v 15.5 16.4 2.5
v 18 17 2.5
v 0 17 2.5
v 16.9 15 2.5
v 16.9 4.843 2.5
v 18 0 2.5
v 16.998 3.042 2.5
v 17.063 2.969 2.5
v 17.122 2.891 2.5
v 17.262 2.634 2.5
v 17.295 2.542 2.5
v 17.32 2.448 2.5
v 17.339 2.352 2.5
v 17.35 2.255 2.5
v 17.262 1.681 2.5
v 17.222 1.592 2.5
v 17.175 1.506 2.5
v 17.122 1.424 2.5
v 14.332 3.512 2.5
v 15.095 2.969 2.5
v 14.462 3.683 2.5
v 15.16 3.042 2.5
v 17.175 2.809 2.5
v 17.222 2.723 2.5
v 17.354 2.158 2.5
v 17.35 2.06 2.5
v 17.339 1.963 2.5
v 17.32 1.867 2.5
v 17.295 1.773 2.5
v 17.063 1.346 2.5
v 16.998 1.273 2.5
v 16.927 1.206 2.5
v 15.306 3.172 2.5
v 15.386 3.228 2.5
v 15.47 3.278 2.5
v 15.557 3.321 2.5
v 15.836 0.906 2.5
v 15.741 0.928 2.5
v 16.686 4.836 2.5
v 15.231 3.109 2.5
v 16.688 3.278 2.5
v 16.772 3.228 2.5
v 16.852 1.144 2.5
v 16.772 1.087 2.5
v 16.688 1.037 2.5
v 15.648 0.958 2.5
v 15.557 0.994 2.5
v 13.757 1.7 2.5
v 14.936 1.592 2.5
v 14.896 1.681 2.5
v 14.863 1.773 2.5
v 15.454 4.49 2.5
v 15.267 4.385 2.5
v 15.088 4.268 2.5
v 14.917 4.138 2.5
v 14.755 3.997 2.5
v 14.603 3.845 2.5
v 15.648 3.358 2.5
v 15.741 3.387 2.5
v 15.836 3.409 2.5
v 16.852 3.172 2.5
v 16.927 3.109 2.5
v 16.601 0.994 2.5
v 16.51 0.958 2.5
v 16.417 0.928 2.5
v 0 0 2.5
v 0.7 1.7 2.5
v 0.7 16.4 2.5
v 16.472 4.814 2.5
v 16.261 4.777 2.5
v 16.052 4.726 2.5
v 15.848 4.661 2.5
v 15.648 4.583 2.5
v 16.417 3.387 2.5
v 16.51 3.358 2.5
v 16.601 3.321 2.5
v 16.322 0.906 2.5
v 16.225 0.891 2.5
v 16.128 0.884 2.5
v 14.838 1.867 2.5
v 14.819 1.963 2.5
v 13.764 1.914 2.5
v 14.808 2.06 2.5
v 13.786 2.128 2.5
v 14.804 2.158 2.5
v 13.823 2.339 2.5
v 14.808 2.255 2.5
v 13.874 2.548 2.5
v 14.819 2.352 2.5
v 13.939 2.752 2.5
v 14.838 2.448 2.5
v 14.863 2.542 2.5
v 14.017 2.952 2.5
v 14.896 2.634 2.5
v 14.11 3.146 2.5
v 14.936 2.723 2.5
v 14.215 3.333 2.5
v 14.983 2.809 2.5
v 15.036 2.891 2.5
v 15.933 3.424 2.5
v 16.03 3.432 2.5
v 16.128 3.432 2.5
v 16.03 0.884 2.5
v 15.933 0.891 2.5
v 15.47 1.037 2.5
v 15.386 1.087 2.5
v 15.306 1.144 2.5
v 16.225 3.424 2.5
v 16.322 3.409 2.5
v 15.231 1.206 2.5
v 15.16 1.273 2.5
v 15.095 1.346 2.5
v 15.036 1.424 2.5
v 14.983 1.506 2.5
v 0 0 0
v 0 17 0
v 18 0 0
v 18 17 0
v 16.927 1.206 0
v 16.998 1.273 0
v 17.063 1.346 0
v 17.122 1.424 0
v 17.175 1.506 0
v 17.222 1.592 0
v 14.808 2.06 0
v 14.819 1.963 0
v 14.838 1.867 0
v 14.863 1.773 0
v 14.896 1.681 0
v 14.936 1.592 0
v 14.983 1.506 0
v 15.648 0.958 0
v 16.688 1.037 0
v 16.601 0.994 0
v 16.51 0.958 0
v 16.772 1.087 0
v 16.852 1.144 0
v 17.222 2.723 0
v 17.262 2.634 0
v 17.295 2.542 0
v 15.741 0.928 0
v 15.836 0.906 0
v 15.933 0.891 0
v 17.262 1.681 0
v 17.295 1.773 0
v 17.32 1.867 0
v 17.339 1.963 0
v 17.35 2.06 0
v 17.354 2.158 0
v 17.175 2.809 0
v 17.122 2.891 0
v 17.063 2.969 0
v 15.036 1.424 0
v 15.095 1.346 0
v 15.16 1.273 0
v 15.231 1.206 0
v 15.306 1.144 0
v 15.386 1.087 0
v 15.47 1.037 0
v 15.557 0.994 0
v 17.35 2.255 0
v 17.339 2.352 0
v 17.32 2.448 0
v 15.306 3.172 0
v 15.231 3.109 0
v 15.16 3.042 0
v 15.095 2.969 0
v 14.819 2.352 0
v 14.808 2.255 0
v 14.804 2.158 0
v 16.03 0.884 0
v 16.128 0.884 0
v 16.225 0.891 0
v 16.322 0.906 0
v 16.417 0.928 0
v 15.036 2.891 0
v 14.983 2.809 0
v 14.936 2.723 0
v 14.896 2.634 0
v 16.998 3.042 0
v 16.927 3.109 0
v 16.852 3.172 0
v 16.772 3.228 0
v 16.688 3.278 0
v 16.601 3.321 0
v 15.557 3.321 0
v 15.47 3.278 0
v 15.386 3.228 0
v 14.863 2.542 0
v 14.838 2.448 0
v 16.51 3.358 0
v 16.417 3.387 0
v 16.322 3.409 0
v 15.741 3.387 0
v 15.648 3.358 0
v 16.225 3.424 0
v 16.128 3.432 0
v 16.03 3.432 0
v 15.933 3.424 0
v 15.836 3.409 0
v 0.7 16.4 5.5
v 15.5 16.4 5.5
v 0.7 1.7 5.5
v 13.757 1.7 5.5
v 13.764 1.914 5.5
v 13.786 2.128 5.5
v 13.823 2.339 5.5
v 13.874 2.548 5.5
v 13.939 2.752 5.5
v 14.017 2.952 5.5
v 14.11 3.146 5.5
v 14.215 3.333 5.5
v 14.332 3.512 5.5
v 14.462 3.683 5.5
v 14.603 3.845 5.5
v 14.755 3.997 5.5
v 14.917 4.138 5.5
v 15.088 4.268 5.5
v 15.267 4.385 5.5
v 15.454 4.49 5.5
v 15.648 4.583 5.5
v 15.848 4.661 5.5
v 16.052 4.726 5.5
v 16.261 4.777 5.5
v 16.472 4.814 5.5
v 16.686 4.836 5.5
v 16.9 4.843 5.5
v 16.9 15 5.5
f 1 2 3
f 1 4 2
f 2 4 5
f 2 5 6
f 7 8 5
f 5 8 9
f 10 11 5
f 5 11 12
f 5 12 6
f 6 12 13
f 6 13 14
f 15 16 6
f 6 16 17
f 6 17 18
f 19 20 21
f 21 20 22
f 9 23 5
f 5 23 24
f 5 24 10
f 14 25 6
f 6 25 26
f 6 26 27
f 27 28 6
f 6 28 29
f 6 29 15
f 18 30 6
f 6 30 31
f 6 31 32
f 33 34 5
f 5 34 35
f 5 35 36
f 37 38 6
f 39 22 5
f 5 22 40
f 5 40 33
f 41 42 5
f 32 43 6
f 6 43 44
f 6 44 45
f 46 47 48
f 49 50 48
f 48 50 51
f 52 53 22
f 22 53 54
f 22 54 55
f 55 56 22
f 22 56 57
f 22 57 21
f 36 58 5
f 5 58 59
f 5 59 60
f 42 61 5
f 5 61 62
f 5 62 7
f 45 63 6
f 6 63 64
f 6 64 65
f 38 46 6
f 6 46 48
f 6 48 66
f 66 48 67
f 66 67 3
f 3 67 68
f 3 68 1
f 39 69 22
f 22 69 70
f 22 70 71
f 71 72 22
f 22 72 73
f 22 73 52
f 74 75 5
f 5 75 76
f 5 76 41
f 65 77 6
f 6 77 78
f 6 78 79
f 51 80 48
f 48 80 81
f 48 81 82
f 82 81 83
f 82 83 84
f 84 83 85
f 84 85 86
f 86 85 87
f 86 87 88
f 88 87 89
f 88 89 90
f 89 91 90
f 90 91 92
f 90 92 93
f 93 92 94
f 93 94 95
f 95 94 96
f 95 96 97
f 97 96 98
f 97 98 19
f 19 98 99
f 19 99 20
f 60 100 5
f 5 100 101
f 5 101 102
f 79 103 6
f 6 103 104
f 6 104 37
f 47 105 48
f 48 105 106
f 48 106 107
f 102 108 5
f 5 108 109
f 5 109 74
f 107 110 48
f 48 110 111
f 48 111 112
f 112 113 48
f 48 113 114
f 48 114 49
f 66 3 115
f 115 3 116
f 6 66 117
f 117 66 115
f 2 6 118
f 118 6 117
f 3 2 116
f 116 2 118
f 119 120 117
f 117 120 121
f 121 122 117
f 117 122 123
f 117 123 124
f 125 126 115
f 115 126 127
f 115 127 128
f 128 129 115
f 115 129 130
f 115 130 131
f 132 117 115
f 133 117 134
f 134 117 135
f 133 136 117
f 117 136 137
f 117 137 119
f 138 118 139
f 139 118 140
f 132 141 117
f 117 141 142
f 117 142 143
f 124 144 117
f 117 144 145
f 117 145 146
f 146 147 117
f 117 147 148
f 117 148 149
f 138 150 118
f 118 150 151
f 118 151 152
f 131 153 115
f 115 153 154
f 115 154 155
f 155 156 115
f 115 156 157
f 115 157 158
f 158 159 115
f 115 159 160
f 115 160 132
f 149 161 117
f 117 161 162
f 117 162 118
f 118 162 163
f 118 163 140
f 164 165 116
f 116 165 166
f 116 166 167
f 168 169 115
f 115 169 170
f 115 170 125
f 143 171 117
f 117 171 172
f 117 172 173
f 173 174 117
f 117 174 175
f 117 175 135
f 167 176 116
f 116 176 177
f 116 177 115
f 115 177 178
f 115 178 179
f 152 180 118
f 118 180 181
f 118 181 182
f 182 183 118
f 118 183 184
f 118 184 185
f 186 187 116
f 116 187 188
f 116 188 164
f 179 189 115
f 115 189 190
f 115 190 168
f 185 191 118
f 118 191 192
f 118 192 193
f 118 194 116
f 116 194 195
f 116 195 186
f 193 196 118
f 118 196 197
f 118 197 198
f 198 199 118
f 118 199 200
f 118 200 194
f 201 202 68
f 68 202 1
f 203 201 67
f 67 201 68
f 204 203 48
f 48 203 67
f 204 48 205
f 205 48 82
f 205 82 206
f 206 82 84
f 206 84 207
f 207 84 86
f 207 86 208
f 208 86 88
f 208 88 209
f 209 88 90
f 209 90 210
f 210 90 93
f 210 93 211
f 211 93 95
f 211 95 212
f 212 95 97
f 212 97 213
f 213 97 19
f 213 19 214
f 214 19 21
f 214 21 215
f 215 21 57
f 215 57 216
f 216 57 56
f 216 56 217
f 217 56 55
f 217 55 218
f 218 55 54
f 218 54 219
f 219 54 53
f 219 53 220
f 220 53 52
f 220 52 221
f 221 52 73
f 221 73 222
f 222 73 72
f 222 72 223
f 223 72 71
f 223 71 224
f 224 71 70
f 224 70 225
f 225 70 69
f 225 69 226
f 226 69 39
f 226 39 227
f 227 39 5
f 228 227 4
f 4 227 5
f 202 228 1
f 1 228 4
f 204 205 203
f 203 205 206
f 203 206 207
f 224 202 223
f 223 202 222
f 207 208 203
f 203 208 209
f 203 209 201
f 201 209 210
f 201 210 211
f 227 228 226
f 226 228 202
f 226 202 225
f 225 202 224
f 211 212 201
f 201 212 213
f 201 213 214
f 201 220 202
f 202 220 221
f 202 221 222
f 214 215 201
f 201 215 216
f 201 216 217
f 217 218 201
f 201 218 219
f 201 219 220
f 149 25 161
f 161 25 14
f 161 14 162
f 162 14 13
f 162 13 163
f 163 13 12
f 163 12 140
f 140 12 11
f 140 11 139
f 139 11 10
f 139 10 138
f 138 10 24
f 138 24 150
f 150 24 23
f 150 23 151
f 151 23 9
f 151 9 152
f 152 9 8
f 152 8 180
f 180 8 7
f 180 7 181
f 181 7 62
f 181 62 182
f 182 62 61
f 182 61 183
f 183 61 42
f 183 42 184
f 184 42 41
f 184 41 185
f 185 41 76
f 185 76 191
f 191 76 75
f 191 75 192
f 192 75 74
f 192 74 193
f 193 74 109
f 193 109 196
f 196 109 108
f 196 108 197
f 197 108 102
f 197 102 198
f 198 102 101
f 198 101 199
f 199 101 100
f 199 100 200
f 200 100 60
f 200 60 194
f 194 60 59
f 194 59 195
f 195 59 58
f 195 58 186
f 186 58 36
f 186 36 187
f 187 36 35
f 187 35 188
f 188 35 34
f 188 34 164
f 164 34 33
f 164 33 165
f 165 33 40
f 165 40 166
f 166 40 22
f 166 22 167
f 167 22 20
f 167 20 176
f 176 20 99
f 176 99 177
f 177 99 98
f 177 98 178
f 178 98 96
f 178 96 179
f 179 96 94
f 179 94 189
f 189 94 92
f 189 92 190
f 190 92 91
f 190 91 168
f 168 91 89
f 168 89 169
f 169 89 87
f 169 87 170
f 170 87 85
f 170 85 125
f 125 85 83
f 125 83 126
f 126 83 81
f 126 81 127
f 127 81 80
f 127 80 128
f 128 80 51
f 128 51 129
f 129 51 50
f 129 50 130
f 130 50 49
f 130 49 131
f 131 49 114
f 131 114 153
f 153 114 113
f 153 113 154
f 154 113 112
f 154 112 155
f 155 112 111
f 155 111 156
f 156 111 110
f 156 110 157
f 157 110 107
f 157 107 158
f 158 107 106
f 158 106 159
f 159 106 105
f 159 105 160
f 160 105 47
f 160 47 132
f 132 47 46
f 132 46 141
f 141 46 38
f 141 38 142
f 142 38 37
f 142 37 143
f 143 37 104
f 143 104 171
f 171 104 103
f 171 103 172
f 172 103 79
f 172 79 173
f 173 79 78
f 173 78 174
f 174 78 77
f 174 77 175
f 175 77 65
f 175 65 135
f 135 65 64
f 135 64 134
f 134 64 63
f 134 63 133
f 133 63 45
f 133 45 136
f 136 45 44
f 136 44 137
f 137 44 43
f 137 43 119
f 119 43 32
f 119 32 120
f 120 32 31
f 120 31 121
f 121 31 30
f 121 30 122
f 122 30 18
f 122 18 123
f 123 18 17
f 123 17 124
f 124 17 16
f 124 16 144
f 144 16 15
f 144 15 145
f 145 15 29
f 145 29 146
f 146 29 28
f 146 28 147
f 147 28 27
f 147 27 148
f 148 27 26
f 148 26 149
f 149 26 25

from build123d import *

# Parameters (mm, degrees)
SKIZZE1_W                       = 18
SKIZZE1_H                       = 17
AUFSATZ_LINEAR_AUSTRAGEN1_DEPTH = 2.5
AUFSATZ_LINEAR_AUSTRAGEN2_DEPTH = 3
SKIZZE3_R                       = 1.275
SCHNITT_LINEAR_AUSTRAGEN1_DEPTH = 3.5


with BuildPart() as part:
    # Skizze1 → Aufsatz-Linear austragen1 (new body)
    with BuildSketch(Plane.XY):
        with Locations((9, 8.5)):
            Rectangle(SKIZZE1_W, SKIZZE1_H)
    extrude(amount=AUFSATZ_LINEAR_AUSTRAGEN1_DEPTH)

    # Skizze2 → Aufsatz-Linear austragen2 (add)
    with BuildSketch(Plane.XY.offset(2.5)):
        with BuildLine():
            Line((0.7, 16.4), (0.7, 1.7))
            Line((0.7, 1.7), (13.757142947, 1.7))
            ThreePointArc((13.757142947, 1.7), (14.677664466, 3.922335534), (16.9, 4.842857053))
            Line((16.9, 4.842857053), (16.9, 15))
            Line((16.9, 15), (15.5, 16.4))
            Line((15.5, 16.4), (0.7, 16.4))
        make_face()
    extrude(amount=AUFSATZ_LINEAR_AUSTRAGEN2_DEPTH)

    # Skizze3 → Schnitt-Linear austragen1 (cut, through all)
    with BuildSketch(Plane.XY.offset(2.5)):
        with Locations((16.079023471, 2.15759118)):
            Circle(SKIZZE3_R)
    extrude(amount=-SCHNITT_LINEAR_AUSTRAGEN1_DEPTH, mode=Mode.SUBTRACT)


solid = part.part
